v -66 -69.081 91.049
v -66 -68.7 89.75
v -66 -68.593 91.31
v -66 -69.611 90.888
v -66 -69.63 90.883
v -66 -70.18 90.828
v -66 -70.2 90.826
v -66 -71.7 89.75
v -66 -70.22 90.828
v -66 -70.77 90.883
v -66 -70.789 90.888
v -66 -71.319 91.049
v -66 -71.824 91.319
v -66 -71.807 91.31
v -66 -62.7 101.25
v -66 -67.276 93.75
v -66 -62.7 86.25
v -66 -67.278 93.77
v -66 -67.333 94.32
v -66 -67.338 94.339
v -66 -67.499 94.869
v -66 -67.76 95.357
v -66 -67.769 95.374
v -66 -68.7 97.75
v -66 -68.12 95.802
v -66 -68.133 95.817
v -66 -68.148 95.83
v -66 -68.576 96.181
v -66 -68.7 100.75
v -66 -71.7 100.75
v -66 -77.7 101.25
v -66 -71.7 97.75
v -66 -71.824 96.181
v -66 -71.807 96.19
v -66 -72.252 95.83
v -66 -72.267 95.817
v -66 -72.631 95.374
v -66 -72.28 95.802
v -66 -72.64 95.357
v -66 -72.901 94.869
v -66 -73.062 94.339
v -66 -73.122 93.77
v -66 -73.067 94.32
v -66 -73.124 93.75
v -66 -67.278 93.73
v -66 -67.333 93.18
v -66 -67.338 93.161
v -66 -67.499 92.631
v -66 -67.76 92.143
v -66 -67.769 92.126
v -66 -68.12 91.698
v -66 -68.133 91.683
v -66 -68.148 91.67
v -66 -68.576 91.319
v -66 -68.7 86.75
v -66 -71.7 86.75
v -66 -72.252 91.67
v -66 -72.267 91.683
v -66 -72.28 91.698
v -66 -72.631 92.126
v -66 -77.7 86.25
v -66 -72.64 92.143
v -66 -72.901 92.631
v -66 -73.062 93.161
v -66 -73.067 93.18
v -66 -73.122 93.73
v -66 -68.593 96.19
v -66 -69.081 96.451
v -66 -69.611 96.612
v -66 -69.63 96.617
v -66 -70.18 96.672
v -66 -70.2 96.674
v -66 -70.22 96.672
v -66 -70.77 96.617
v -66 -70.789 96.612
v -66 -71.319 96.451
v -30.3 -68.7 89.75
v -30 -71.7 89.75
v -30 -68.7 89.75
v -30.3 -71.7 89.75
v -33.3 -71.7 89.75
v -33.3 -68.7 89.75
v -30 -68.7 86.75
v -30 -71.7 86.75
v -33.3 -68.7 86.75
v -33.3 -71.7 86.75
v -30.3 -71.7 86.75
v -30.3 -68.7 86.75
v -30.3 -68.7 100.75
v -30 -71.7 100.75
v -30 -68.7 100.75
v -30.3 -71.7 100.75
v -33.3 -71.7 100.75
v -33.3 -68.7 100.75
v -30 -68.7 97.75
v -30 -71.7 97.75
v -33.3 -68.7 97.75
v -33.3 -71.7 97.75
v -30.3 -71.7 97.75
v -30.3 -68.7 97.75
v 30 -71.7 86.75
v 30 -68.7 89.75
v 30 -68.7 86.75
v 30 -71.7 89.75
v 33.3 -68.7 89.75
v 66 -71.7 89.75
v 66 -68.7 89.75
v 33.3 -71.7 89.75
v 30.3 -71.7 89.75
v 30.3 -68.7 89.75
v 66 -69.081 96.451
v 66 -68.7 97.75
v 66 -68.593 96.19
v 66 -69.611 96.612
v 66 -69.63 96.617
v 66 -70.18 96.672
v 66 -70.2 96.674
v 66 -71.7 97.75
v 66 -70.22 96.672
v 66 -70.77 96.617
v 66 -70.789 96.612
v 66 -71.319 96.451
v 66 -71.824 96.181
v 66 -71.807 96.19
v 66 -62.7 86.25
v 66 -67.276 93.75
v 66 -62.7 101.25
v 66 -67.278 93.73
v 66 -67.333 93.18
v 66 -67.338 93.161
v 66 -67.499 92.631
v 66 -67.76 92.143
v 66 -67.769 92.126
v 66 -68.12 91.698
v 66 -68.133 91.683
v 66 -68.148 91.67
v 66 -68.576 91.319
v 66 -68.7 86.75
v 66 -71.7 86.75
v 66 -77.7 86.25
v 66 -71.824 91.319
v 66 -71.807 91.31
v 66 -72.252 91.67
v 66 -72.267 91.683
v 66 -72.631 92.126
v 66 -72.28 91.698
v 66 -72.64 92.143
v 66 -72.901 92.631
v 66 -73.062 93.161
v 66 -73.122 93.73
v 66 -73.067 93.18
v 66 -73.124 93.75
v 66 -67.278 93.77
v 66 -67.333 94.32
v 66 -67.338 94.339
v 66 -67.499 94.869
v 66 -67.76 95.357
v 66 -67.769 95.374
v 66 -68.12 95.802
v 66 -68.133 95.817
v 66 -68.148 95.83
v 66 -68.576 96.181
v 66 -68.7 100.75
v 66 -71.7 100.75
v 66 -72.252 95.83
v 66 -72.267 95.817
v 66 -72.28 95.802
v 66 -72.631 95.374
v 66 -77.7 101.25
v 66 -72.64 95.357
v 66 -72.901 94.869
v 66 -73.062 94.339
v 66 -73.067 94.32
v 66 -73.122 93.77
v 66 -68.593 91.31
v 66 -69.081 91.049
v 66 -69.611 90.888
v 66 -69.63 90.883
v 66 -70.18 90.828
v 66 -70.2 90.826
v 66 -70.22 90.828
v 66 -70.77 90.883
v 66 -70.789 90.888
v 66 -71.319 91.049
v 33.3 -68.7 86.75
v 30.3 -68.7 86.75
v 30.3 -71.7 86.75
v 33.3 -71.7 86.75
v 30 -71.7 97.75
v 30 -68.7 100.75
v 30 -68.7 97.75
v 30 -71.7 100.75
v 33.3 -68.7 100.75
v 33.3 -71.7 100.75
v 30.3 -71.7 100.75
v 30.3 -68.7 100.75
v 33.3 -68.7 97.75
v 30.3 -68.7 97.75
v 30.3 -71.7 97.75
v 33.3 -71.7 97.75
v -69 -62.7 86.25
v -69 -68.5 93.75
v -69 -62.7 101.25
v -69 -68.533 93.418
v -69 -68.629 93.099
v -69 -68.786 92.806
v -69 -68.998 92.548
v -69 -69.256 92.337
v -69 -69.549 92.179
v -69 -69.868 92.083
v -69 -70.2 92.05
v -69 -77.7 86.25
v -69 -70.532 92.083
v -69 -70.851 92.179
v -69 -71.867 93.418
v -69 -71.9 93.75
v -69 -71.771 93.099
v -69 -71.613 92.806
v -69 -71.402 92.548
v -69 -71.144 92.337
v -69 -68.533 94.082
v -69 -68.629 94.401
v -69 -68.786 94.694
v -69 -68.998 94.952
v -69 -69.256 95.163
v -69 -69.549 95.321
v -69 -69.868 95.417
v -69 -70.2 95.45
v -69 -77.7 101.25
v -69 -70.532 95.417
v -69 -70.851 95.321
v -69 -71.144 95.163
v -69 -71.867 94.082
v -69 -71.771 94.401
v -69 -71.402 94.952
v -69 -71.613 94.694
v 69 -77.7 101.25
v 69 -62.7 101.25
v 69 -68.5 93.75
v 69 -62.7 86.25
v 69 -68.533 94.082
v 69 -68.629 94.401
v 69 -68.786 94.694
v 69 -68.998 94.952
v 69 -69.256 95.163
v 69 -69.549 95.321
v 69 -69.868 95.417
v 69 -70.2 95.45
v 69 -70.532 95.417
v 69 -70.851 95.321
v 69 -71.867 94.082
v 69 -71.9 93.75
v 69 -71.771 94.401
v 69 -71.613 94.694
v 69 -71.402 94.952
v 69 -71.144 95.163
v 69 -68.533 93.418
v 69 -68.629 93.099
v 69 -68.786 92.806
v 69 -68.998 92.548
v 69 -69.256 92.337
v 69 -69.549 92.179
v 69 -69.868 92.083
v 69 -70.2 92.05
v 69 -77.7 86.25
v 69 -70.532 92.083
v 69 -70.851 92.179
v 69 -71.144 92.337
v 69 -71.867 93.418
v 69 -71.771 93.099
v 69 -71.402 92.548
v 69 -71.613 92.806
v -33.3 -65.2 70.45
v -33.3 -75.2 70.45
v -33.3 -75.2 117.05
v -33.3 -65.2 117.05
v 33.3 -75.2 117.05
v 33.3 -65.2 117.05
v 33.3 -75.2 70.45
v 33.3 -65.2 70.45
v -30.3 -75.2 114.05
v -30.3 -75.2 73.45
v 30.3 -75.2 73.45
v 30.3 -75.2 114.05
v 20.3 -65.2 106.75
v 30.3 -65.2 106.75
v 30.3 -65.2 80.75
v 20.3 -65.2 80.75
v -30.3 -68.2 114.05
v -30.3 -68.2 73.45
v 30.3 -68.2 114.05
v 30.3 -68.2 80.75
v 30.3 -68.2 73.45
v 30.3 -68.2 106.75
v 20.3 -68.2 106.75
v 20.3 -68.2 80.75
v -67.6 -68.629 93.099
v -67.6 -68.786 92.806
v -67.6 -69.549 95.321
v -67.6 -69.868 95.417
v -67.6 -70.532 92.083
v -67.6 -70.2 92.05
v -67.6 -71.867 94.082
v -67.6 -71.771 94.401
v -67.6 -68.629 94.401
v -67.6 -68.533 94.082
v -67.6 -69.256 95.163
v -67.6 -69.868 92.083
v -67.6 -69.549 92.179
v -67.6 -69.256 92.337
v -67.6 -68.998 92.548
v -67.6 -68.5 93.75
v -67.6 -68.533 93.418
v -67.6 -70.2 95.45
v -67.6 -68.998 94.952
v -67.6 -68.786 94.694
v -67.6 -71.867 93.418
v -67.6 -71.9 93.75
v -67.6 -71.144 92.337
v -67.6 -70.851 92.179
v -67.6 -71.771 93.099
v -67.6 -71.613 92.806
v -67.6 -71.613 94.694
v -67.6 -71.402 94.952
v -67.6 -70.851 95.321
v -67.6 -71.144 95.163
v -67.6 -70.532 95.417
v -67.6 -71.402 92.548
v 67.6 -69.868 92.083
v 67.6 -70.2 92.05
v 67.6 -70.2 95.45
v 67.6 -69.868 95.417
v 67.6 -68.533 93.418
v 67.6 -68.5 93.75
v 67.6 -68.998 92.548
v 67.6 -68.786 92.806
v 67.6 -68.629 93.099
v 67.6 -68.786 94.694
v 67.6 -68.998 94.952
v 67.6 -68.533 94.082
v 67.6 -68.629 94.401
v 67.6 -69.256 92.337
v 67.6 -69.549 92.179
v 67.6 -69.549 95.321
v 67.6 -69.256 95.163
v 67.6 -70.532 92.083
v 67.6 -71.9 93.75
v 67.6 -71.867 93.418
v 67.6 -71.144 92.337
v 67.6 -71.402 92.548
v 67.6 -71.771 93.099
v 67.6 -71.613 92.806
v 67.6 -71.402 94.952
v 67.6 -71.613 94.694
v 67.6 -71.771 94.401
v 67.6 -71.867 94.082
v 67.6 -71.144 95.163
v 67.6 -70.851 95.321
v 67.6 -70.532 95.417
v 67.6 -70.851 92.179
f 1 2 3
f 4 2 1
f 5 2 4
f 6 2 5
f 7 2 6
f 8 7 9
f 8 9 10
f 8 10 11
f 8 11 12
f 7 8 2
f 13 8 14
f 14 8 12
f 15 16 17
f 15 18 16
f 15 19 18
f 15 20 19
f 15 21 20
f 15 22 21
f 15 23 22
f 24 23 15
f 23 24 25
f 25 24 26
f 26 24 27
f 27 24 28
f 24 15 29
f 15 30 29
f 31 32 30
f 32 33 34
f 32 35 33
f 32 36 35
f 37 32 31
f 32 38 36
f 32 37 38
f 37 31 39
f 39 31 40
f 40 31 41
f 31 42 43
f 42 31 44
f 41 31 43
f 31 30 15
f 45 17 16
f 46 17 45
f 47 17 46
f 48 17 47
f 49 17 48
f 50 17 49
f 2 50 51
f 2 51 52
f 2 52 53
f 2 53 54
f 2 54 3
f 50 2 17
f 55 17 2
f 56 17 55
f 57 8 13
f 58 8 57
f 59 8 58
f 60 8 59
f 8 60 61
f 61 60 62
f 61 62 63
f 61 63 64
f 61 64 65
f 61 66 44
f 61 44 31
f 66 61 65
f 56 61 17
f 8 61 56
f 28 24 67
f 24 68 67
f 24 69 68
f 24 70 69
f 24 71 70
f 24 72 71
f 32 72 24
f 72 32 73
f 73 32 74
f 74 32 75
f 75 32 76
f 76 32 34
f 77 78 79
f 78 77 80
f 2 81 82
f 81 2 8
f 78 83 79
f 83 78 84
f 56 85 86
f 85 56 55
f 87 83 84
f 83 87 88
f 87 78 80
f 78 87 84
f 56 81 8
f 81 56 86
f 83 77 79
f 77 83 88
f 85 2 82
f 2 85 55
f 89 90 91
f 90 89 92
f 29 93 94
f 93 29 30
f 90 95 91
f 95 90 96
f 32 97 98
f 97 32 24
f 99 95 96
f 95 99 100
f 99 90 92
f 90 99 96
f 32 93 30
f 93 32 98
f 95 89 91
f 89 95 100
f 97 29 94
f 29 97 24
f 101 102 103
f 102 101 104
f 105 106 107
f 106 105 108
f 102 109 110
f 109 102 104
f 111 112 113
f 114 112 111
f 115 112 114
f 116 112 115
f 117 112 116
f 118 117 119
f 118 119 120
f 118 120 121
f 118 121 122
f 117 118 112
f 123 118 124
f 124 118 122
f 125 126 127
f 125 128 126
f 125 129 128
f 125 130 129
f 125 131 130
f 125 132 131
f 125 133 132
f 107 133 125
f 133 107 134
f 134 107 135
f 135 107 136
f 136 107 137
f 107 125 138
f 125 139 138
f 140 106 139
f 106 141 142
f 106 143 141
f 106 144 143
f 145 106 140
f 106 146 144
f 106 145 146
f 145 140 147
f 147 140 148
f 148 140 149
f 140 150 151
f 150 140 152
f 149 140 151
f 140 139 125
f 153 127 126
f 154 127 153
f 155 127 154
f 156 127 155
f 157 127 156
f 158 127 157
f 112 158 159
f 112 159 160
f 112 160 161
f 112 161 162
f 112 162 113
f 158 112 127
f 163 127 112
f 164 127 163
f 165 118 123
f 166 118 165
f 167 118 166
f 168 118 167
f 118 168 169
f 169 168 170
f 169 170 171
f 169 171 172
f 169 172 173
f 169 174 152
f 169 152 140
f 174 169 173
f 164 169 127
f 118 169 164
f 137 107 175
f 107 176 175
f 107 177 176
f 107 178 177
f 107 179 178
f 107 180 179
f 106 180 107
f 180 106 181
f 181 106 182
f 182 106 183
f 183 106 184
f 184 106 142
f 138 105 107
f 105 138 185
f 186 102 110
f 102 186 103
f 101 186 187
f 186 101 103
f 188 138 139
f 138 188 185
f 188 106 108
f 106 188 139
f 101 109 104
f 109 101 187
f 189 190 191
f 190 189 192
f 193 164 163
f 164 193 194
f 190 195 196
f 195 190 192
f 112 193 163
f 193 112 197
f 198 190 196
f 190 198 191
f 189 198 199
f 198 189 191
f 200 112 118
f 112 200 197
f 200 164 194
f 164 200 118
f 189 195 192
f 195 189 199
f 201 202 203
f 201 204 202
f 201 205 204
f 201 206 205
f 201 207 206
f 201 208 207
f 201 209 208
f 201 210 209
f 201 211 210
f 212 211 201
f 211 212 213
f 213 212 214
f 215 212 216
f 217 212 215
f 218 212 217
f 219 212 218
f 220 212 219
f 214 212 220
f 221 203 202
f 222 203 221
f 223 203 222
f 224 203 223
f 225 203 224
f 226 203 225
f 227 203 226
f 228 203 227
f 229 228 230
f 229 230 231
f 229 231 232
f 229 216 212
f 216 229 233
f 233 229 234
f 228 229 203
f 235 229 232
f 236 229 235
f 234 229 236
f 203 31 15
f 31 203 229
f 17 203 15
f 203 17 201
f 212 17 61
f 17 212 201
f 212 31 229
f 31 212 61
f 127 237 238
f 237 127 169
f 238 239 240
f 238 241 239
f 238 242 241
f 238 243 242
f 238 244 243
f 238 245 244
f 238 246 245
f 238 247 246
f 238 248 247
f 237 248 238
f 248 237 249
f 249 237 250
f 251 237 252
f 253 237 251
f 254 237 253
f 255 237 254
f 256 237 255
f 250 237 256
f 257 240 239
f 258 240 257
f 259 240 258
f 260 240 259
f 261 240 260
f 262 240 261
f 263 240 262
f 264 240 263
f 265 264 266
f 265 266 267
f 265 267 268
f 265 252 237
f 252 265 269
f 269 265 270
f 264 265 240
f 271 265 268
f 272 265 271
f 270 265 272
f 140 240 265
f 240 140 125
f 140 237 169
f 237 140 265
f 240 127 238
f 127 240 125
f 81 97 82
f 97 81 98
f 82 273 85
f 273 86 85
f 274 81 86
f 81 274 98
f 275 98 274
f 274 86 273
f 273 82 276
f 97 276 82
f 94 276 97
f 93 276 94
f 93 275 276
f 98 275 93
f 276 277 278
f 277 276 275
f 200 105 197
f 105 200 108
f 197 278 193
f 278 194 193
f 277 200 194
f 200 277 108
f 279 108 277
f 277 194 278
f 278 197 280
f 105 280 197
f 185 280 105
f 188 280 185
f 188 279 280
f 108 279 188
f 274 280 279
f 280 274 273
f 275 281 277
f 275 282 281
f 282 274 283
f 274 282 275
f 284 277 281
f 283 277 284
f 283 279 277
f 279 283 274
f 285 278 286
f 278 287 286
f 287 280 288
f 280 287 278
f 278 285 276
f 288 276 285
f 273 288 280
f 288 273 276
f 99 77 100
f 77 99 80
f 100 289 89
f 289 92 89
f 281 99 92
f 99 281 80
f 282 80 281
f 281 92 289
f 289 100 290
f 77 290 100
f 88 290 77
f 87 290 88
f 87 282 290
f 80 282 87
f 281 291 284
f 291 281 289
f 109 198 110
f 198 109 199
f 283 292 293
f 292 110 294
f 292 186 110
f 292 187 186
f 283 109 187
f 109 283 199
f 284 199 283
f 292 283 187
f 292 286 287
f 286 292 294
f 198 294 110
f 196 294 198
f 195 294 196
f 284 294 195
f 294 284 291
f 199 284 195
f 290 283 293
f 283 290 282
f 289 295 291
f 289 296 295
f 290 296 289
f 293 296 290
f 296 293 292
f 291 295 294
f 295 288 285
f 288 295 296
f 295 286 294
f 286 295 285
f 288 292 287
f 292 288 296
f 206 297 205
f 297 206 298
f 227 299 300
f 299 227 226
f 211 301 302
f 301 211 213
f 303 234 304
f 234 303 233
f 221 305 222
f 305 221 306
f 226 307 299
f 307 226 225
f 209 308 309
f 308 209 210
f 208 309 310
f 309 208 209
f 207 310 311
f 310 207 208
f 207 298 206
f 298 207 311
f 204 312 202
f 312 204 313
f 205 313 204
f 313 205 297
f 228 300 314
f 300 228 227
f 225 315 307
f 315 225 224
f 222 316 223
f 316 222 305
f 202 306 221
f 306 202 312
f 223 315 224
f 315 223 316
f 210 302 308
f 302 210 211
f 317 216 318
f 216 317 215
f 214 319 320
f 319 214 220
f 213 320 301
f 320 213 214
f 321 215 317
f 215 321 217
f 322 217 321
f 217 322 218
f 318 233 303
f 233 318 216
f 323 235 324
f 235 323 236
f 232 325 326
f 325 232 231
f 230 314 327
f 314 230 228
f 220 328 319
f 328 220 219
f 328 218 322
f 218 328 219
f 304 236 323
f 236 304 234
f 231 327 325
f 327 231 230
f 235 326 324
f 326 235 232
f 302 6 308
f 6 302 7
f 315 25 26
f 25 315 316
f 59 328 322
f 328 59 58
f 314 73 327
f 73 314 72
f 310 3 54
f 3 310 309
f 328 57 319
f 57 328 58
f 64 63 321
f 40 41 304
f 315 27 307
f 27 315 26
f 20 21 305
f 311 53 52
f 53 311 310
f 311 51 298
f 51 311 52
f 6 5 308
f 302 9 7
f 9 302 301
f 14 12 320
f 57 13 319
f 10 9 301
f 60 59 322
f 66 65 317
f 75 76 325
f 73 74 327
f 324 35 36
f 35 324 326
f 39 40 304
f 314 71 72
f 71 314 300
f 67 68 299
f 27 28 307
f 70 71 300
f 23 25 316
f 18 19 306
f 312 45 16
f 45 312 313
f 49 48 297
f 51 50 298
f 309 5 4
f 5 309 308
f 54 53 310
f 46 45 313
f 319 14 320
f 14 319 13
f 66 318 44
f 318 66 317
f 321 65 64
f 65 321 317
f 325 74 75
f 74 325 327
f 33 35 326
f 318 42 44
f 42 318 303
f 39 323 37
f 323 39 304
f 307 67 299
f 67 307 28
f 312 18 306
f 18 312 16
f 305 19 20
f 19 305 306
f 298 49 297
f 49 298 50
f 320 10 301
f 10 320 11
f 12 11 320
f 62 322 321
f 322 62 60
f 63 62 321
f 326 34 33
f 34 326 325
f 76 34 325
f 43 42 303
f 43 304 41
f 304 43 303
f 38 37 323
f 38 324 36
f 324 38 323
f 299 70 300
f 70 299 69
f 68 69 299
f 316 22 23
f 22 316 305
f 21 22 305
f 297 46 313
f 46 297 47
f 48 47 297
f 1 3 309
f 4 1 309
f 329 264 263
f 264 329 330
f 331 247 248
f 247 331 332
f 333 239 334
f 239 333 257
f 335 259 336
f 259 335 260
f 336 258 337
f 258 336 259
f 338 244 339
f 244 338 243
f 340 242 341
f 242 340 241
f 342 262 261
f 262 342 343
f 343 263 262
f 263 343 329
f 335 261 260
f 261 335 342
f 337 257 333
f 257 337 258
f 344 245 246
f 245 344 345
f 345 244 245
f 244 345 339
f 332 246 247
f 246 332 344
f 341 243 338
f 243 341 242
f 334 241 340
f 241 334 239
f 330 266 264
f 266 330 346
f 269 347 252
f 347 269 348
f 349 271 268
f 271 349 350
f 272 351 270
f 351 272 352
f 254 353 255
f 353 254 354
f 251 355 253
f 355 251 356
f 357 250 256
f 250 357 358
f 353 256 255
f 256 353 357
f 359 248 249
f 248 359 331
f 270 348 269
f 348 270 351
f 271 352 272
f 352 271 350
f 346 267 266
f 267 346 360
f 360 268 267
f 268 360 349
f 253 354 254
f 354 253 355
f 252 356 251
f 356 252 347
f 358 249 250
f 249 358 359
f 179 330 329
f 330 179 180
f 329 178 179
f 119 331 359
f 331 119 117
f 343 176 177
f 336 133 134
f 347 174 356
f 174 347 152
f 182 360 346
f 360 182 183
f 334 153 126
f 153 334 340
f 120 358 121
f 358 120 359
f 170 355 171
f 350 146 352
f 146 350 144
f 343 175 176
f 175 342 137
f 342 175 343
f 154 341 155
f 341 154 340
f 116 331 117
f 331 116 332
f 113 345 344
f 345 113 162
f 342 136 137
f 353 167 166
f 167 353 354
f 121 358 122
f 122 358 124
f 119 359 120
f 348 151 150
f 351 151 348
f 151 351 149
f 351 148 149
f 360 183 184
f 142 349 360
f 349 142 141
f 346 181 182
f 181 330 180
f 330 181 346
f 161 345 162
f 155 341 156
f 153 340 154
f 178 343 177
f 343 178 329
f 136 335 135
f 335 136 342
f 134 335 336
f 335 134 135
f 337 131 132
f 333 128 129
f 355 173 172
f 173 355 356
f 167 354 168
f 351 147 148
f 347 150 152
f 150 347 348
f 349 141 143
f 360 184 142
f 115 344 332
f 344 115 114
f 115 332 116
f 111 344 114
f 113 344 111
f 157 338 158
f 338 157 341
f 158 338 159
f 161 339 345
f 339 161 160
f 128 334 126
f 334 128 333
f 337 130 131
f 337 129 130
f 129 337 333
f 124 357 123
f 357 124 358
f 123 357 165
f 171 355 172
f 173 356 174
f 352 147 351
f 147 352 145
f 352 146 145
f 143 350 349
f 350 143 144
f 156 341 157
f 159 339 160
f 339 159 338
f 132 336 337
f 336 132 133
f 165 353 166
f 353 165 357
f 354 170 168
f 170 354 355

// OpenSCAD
//
// ============================================================================
// SteamMachine UM790
// Project Phoenix
//
// Archivo  : rc522_bracket.scad
// Versión  : 2.0
// Fecha    : 2026-08-03
//
// Soporte REAL e IMPRIMIBLE del lector RC522.
//
// REDISEÑO COMPLETO (aviso del usuario, v2.0):
//   - FALLO CORREGIDO: el taladro de tornillo de la v1.0 estaba
//     orientado en el eje Y — no coincidía con el eje real del poste
//     de anclaje (rc522MountBoss(), walls.scad), que crece en X. El
//     tornillo no habría podido entrar en la dirección correcta.
//   - Extremos rediseñados como prolongación en "L": el brazo
//     horizontal (en X) termina en una pletina más ancha, con
//     avellanado cónico real para la cabeza del tornillo — no un
//     simple taladro de paso al final del brazo.
//   - Encaje del lector ajustado a sus medidas EXACTAS
//     (nfc_reader_width x nfc_reader_height x nfc_reader_depth,
//     00_parametros.scad), no una huella aproximada — el lector debe
//     encajar perfectamente.
//
// ============================================================================

include <../../../00_parametros.scad>;
include <../../reference/components/assembly_positions.scad>;

$fn = 32;

part_version = "2.0";


//=============================================================================
// COORDENADAS COMPARTIDAS CON walls.scad (rc522MountBoss())
//
// Deben coincidir exactamente: misma Y (centro de profundidad de la
// placa), misma Z (rc522_pos[2]), y en X hasta la cara interior de
// cada poste (que crece rc522_mount_depth hacia el interior desde la
// cara interior de la pared).
//=============================================================================

rc522_bracket_y     = rc522_pos[1] + nfc_reader_depth/2;
rc522_bracket_z     = rc522_pos[2];
rc522_bracket_x_end = case_width/2 - wall_thickness - rc522_mount_depth;  // 69, cara interior del poste

rc522_end_pad_size      = 15.0;  // placa plana, ancha (mucho más que el brazo, para que se note el ángulo de 90°) — limitado por la distancia al panel NFC (ver rc522BracketEndPads())
rc522_end_pad_thickness = 3.0;   // grosor de la placa (perpendicular a la pared)
rc522_csk_diameter  = 6.0;  // avellanado M3
rc522_csk_depth     = 1.6;  // dentro del grosor de la pletina


//=============================================================================
// BRAZO HORIZONTAL — de la placa hasta cerca de cada pared
//
// FALLO CORREGIDO (2026-08-03, captura del usuario): el brazo, al
// llegar centrado justo donde está el taladro de la placa, tapaba el
// propio agujero — imposible meter el tornillo por dentro, bloqueado
// por el material del propio brazo. Rediseñado como una horquilla de
// dos barras más finas, una por encima y otra por debajo del eje del
// tornillo, dejando el centro (por donde debe entrar el tornillo)
// completamente libre.
//=============================================================================

rc522_arm_prong_height = 3.0;   // alto de cada barra de la horquilla
rc522_arm_gap          = 8.0;   // hueco central libre, más ancho que el avellanado (6mm) para que quepa el destornillador

module rc522BracketArms()
{

    armInnerX = nfc_reader_width/2;
    armLength = rc522_bracket_x_end - rc522_end_pad_thickness - armInnerX;

    for(ix=[-1,1])
    for(iz=[-1,1])

        translate([
            ix>0 ? armInnerX : -armInnerX-armLength,
            rc522_bracket_y - rc522_bracket_thickness/2,
            rc522_bracket_z + iz*rc522_arm_gap/2 + (iz>0 ? 0 : -rc522_arm_prong_height)
        ])

            cube([
                armLength,
                rc522_bracket_thickness,
                rc522_arm_prong_height
            ]);

}


//=============================================================================
// PROLONGACIÓN EN "L" DE CADA EXTREMO
//
// El brazo horizontal (en X) llega hasta cerca del poste y termina en
// una pletina — más ancha que el propio brazo, con su cara plana
// justo enfrente del poste (perpendicular a X, mismo plano que la
// cara de la pared) — el taladro avellanado atraviesa esta pletina en
// el eje X, mismo eje que el poste.
//=============================================================================

module rc522BracketEndPads()
{

    // REDISEÑADO (2026-08-03, aviso del usuario: "debe tener forma
    // de L o ángulo de 90 grados", confirmado: "plana contra la
    // pared, tornillo perpendicular a ella"): antes era un bloque
    // macizo (14x14x14) — ahora una placa plana y ancha (18x18 mm),
    // solo 3 mm de grosor en X, mucho más ancha que el propio brazo
    // (10 mm) para que el ángulo de 90° se note claramente. Su cara
    // exterior toca la punta del poste (X=69, mismo criterio que
    // antes de no invadir la pared), y el tornillo entra
    // perpendicular a ella desde la cara interior.
    for(ix=[-1,1])

        translate([
            ix>0 ? rc522_bracket_x_end - rc522_end_pad_thickness : -rc522_bracket_x_end,
            rc522_bracket_y - rc522_end_pad_size/2,
            rc522_bracket_z - rc522_end_pad_size/2
        ])

            cube([
                rc522_end_pad_thickness,
                rc522_end_pad_size,
                rc522_end_pad_size
            ]);

}

module rc522BracketScrewHoles()
{

    for(ix=[-1,1])

        translate([
            ix*rc522_bracket_x_end,
            rc522_bracket_y,
            rc522_bracket_z
        ])

            rotate([0,90,0])
            {

                // Taladro de paso, todo el grosor de la placa (3mm) —
                // su cara exterior (la que toca el poste) está en el
                // origen de este eje local (Z=0); la placa se
                // extiende hacia dentro, en +Z para el lado izquierdo
                // (ix=-1) y en -Z para el derecho (ix=1) —
                // direcciones opuestas en este eje local, aunque en
                // coordenadas globales las dos crecen hacia el
                // centro.
                translate([0,0, ix>0 ? -rc522_end_pad_thickness-0.1 : -0.1])
                    cylinder(d = 3.4, h = rc522_end_pad_thickness+1.1);

                // FALLO CORREGIDO (2026-08-03, aviso del usuario: "no
                // se puede sujetar a los laterales" / "debe tener
                // forma de L o ángulo de 90 grados"): la pletina era
                // un bloque macizo que solo tocaba la punta del
                // poste, sin ángulo de 90° real ni superficie de
                // apoyo — ahora es una placa plana y ancha,
                // perpendicular a la pared, con el avellanado en su
                // cara INTERIOR (mirando hacia la placa/el interior
                // del chasis) — el tornillo entra desde dentro, con
                // acceso real, atraviesa la placa y rosca en el
                // poste.
                translate([0,0, ix>0 ? -rc522_end_pad_thickness-0.1 : rc522_end_pad_thickness-rc522_csk_depth])
                    cylinder(
                        d1 = ix>0 ? rc522_csk_diameter : 3.4,
                        d2 = ix>0 ? 3.4 : rc522_csk_diameter,
                        h  = rc522_csk_depth+0.1
                    );

            }

}


//=============================================================================
// ENCAJE DEL LECTOR — ajustado a sus medidas exactas
//
// Marco que rodea la placa por sus 4 lados (nfc_reader_width x
// nfc_reader_height), con una holgura mínima para que encaje sin
// forzar, y una repisa por detrás donde apoya (nfc_reader_depth).
//=============================================================================

//=============================================================================
// ENCAJE DEL LECTOR — ajustado a sus medidas exactas
//
// FALLO CORREGIDO: la primera versión tenía una pared frontal que se
// extendía hasta la cara frontal del propio panel NFC (invadiendo su
// espacio, colisión real confirmada) — el hueco de separación entre
// el lector y el panel (rc522_panel_gap = 3 mm) ya está reservado
// para eso, no hace falta ninguna pared del soporte ahí. El panel ya
// hace de "tope" frontal.
//
// Ahora: SIN pared frontal — solo una repisa trasera (apoyo) y guías
// laterales/superior/inferior, todo dentro de la profundidad real de
// la placa (rc522_pos[1] a rc522_pos[1]+nfc_reader_depth).
//=============================================================================

//=============================================================================
// ORIFICIO DE SALIDA DE CONECTORES/CABLES
//
// PEDIDO POR EL USUARIO (2026-08-15, marcado a mano en una foto del
// soporte real): el lector tiene una fila de pines de conexión que
// sobresalen por uno de sus bordes — la repisa trasera (el "tope"
// donde apoya el lector) los bloquea sin dejarles salida. Se abre un
// hueco rectangular en esa repisa, cerca del borde donde están los
// pines según la foto.
//
// ESTIMADO — posición y tamaño calculados a partir de las
// proporciones visibles en la foto, no de una medida exacta del
// conector. Revisar tras imprimir y ajustar si hace falta.
//=============================================================================

rc522_connector_hole_width  = 10.0;  // ESTIMADO
rc522_connector_hole_height = 26.0;  // ESTIMADO
// PEDIDO POR EL USUARIO (2026-08-15): "debe quedar alineado a la
// derecha del todo, pero sin invadir el marco lateral" — antes
// centrado en X=20, quedaba visiblemente hacia el centro. Ahora el
// borde derecho del hueco coincide exactamente con el borde derecho
// de la cavidad del lector (nfc_reader_width/2 + la holgura de
// encaje), justo hasta donde empieza la pared estructural — sin
// tocarla.
rc522_connector_hole_x      = 25.3;  // antes 20.0 — borde derecho ahora en 30.3 (= nfc_reader_width/2 + rc522_fit_clearance), el límite de la cavidad

module rc522ConnectorCutout()
{

    translate([
        rc522_connector_hole_x - rc522_connector_hole_width/2,
        rc522_pos[1] + nfc_reader_depth - rc522_bracket_thickness - 0.1,
        rc522_bracket_z - rc522_connector_hole_height/2
    ])

        cube([
            rc522_connector_hole_width,
            rc522_bracket_thickness + 0.2,
            rc522_connector_hole_height
        ]);

}

module rc522BracketCradle()
{

    rc522_fit_clearance = 0.3;  // holgura para que el lector entre sin forzar

    outerW = nfc_reader_width + 2*rc522_bracket_thickness + 2*rc522_fit_clearance;
    outerH = nfc_reader_height + 2*rc522_bracket_thickness + 2*rc522_fit_clearance;

    difference()
    {

        translate([
            -outerW/2,
            rc522_pos[1],
            rc522_bracket_z - outerH/2
        ])

            cube([outerW, nfc_reader_depth, outerH]);

        // Hueco donde encaja la placa — abierto hacia el panel (Y
        // menor), cerrado por detrás (la cara trasera de la caja de
        // arriba hace de repisa/tope).
        translate([
            -nfc_reader_width/2-rc522_fit_clearance,
            rc522_pos[1]-0.1,
            rc522_bracket_z-nfc_reader_height/2-rc522_fit_clearance
        ])
            cube([
                nfc_reader_width+2*rc522_fit_clearance,
                nfc_reader_depth-rc522_bracket_thickness+0.1,
                nfc_reader_height+2*rc522_fit_clearance
            ]);

        rc522ConnectorCutout();

    }

}


//=============================================================================
// SOPORTE COMPLETO
//=============================================================================

module rc522BracketPrintable()
{

    difference()
    {

        union()
        {
            rc522BracketArms();
            rc522BracketEndPads();
            rc522BracketCradle();
        }

        rc522BracketScrewHoles();

    }

}


//=============================================================================
// PREVIEW
//=============================================================================

color("Silver")
    rc522BracketPrintable();
